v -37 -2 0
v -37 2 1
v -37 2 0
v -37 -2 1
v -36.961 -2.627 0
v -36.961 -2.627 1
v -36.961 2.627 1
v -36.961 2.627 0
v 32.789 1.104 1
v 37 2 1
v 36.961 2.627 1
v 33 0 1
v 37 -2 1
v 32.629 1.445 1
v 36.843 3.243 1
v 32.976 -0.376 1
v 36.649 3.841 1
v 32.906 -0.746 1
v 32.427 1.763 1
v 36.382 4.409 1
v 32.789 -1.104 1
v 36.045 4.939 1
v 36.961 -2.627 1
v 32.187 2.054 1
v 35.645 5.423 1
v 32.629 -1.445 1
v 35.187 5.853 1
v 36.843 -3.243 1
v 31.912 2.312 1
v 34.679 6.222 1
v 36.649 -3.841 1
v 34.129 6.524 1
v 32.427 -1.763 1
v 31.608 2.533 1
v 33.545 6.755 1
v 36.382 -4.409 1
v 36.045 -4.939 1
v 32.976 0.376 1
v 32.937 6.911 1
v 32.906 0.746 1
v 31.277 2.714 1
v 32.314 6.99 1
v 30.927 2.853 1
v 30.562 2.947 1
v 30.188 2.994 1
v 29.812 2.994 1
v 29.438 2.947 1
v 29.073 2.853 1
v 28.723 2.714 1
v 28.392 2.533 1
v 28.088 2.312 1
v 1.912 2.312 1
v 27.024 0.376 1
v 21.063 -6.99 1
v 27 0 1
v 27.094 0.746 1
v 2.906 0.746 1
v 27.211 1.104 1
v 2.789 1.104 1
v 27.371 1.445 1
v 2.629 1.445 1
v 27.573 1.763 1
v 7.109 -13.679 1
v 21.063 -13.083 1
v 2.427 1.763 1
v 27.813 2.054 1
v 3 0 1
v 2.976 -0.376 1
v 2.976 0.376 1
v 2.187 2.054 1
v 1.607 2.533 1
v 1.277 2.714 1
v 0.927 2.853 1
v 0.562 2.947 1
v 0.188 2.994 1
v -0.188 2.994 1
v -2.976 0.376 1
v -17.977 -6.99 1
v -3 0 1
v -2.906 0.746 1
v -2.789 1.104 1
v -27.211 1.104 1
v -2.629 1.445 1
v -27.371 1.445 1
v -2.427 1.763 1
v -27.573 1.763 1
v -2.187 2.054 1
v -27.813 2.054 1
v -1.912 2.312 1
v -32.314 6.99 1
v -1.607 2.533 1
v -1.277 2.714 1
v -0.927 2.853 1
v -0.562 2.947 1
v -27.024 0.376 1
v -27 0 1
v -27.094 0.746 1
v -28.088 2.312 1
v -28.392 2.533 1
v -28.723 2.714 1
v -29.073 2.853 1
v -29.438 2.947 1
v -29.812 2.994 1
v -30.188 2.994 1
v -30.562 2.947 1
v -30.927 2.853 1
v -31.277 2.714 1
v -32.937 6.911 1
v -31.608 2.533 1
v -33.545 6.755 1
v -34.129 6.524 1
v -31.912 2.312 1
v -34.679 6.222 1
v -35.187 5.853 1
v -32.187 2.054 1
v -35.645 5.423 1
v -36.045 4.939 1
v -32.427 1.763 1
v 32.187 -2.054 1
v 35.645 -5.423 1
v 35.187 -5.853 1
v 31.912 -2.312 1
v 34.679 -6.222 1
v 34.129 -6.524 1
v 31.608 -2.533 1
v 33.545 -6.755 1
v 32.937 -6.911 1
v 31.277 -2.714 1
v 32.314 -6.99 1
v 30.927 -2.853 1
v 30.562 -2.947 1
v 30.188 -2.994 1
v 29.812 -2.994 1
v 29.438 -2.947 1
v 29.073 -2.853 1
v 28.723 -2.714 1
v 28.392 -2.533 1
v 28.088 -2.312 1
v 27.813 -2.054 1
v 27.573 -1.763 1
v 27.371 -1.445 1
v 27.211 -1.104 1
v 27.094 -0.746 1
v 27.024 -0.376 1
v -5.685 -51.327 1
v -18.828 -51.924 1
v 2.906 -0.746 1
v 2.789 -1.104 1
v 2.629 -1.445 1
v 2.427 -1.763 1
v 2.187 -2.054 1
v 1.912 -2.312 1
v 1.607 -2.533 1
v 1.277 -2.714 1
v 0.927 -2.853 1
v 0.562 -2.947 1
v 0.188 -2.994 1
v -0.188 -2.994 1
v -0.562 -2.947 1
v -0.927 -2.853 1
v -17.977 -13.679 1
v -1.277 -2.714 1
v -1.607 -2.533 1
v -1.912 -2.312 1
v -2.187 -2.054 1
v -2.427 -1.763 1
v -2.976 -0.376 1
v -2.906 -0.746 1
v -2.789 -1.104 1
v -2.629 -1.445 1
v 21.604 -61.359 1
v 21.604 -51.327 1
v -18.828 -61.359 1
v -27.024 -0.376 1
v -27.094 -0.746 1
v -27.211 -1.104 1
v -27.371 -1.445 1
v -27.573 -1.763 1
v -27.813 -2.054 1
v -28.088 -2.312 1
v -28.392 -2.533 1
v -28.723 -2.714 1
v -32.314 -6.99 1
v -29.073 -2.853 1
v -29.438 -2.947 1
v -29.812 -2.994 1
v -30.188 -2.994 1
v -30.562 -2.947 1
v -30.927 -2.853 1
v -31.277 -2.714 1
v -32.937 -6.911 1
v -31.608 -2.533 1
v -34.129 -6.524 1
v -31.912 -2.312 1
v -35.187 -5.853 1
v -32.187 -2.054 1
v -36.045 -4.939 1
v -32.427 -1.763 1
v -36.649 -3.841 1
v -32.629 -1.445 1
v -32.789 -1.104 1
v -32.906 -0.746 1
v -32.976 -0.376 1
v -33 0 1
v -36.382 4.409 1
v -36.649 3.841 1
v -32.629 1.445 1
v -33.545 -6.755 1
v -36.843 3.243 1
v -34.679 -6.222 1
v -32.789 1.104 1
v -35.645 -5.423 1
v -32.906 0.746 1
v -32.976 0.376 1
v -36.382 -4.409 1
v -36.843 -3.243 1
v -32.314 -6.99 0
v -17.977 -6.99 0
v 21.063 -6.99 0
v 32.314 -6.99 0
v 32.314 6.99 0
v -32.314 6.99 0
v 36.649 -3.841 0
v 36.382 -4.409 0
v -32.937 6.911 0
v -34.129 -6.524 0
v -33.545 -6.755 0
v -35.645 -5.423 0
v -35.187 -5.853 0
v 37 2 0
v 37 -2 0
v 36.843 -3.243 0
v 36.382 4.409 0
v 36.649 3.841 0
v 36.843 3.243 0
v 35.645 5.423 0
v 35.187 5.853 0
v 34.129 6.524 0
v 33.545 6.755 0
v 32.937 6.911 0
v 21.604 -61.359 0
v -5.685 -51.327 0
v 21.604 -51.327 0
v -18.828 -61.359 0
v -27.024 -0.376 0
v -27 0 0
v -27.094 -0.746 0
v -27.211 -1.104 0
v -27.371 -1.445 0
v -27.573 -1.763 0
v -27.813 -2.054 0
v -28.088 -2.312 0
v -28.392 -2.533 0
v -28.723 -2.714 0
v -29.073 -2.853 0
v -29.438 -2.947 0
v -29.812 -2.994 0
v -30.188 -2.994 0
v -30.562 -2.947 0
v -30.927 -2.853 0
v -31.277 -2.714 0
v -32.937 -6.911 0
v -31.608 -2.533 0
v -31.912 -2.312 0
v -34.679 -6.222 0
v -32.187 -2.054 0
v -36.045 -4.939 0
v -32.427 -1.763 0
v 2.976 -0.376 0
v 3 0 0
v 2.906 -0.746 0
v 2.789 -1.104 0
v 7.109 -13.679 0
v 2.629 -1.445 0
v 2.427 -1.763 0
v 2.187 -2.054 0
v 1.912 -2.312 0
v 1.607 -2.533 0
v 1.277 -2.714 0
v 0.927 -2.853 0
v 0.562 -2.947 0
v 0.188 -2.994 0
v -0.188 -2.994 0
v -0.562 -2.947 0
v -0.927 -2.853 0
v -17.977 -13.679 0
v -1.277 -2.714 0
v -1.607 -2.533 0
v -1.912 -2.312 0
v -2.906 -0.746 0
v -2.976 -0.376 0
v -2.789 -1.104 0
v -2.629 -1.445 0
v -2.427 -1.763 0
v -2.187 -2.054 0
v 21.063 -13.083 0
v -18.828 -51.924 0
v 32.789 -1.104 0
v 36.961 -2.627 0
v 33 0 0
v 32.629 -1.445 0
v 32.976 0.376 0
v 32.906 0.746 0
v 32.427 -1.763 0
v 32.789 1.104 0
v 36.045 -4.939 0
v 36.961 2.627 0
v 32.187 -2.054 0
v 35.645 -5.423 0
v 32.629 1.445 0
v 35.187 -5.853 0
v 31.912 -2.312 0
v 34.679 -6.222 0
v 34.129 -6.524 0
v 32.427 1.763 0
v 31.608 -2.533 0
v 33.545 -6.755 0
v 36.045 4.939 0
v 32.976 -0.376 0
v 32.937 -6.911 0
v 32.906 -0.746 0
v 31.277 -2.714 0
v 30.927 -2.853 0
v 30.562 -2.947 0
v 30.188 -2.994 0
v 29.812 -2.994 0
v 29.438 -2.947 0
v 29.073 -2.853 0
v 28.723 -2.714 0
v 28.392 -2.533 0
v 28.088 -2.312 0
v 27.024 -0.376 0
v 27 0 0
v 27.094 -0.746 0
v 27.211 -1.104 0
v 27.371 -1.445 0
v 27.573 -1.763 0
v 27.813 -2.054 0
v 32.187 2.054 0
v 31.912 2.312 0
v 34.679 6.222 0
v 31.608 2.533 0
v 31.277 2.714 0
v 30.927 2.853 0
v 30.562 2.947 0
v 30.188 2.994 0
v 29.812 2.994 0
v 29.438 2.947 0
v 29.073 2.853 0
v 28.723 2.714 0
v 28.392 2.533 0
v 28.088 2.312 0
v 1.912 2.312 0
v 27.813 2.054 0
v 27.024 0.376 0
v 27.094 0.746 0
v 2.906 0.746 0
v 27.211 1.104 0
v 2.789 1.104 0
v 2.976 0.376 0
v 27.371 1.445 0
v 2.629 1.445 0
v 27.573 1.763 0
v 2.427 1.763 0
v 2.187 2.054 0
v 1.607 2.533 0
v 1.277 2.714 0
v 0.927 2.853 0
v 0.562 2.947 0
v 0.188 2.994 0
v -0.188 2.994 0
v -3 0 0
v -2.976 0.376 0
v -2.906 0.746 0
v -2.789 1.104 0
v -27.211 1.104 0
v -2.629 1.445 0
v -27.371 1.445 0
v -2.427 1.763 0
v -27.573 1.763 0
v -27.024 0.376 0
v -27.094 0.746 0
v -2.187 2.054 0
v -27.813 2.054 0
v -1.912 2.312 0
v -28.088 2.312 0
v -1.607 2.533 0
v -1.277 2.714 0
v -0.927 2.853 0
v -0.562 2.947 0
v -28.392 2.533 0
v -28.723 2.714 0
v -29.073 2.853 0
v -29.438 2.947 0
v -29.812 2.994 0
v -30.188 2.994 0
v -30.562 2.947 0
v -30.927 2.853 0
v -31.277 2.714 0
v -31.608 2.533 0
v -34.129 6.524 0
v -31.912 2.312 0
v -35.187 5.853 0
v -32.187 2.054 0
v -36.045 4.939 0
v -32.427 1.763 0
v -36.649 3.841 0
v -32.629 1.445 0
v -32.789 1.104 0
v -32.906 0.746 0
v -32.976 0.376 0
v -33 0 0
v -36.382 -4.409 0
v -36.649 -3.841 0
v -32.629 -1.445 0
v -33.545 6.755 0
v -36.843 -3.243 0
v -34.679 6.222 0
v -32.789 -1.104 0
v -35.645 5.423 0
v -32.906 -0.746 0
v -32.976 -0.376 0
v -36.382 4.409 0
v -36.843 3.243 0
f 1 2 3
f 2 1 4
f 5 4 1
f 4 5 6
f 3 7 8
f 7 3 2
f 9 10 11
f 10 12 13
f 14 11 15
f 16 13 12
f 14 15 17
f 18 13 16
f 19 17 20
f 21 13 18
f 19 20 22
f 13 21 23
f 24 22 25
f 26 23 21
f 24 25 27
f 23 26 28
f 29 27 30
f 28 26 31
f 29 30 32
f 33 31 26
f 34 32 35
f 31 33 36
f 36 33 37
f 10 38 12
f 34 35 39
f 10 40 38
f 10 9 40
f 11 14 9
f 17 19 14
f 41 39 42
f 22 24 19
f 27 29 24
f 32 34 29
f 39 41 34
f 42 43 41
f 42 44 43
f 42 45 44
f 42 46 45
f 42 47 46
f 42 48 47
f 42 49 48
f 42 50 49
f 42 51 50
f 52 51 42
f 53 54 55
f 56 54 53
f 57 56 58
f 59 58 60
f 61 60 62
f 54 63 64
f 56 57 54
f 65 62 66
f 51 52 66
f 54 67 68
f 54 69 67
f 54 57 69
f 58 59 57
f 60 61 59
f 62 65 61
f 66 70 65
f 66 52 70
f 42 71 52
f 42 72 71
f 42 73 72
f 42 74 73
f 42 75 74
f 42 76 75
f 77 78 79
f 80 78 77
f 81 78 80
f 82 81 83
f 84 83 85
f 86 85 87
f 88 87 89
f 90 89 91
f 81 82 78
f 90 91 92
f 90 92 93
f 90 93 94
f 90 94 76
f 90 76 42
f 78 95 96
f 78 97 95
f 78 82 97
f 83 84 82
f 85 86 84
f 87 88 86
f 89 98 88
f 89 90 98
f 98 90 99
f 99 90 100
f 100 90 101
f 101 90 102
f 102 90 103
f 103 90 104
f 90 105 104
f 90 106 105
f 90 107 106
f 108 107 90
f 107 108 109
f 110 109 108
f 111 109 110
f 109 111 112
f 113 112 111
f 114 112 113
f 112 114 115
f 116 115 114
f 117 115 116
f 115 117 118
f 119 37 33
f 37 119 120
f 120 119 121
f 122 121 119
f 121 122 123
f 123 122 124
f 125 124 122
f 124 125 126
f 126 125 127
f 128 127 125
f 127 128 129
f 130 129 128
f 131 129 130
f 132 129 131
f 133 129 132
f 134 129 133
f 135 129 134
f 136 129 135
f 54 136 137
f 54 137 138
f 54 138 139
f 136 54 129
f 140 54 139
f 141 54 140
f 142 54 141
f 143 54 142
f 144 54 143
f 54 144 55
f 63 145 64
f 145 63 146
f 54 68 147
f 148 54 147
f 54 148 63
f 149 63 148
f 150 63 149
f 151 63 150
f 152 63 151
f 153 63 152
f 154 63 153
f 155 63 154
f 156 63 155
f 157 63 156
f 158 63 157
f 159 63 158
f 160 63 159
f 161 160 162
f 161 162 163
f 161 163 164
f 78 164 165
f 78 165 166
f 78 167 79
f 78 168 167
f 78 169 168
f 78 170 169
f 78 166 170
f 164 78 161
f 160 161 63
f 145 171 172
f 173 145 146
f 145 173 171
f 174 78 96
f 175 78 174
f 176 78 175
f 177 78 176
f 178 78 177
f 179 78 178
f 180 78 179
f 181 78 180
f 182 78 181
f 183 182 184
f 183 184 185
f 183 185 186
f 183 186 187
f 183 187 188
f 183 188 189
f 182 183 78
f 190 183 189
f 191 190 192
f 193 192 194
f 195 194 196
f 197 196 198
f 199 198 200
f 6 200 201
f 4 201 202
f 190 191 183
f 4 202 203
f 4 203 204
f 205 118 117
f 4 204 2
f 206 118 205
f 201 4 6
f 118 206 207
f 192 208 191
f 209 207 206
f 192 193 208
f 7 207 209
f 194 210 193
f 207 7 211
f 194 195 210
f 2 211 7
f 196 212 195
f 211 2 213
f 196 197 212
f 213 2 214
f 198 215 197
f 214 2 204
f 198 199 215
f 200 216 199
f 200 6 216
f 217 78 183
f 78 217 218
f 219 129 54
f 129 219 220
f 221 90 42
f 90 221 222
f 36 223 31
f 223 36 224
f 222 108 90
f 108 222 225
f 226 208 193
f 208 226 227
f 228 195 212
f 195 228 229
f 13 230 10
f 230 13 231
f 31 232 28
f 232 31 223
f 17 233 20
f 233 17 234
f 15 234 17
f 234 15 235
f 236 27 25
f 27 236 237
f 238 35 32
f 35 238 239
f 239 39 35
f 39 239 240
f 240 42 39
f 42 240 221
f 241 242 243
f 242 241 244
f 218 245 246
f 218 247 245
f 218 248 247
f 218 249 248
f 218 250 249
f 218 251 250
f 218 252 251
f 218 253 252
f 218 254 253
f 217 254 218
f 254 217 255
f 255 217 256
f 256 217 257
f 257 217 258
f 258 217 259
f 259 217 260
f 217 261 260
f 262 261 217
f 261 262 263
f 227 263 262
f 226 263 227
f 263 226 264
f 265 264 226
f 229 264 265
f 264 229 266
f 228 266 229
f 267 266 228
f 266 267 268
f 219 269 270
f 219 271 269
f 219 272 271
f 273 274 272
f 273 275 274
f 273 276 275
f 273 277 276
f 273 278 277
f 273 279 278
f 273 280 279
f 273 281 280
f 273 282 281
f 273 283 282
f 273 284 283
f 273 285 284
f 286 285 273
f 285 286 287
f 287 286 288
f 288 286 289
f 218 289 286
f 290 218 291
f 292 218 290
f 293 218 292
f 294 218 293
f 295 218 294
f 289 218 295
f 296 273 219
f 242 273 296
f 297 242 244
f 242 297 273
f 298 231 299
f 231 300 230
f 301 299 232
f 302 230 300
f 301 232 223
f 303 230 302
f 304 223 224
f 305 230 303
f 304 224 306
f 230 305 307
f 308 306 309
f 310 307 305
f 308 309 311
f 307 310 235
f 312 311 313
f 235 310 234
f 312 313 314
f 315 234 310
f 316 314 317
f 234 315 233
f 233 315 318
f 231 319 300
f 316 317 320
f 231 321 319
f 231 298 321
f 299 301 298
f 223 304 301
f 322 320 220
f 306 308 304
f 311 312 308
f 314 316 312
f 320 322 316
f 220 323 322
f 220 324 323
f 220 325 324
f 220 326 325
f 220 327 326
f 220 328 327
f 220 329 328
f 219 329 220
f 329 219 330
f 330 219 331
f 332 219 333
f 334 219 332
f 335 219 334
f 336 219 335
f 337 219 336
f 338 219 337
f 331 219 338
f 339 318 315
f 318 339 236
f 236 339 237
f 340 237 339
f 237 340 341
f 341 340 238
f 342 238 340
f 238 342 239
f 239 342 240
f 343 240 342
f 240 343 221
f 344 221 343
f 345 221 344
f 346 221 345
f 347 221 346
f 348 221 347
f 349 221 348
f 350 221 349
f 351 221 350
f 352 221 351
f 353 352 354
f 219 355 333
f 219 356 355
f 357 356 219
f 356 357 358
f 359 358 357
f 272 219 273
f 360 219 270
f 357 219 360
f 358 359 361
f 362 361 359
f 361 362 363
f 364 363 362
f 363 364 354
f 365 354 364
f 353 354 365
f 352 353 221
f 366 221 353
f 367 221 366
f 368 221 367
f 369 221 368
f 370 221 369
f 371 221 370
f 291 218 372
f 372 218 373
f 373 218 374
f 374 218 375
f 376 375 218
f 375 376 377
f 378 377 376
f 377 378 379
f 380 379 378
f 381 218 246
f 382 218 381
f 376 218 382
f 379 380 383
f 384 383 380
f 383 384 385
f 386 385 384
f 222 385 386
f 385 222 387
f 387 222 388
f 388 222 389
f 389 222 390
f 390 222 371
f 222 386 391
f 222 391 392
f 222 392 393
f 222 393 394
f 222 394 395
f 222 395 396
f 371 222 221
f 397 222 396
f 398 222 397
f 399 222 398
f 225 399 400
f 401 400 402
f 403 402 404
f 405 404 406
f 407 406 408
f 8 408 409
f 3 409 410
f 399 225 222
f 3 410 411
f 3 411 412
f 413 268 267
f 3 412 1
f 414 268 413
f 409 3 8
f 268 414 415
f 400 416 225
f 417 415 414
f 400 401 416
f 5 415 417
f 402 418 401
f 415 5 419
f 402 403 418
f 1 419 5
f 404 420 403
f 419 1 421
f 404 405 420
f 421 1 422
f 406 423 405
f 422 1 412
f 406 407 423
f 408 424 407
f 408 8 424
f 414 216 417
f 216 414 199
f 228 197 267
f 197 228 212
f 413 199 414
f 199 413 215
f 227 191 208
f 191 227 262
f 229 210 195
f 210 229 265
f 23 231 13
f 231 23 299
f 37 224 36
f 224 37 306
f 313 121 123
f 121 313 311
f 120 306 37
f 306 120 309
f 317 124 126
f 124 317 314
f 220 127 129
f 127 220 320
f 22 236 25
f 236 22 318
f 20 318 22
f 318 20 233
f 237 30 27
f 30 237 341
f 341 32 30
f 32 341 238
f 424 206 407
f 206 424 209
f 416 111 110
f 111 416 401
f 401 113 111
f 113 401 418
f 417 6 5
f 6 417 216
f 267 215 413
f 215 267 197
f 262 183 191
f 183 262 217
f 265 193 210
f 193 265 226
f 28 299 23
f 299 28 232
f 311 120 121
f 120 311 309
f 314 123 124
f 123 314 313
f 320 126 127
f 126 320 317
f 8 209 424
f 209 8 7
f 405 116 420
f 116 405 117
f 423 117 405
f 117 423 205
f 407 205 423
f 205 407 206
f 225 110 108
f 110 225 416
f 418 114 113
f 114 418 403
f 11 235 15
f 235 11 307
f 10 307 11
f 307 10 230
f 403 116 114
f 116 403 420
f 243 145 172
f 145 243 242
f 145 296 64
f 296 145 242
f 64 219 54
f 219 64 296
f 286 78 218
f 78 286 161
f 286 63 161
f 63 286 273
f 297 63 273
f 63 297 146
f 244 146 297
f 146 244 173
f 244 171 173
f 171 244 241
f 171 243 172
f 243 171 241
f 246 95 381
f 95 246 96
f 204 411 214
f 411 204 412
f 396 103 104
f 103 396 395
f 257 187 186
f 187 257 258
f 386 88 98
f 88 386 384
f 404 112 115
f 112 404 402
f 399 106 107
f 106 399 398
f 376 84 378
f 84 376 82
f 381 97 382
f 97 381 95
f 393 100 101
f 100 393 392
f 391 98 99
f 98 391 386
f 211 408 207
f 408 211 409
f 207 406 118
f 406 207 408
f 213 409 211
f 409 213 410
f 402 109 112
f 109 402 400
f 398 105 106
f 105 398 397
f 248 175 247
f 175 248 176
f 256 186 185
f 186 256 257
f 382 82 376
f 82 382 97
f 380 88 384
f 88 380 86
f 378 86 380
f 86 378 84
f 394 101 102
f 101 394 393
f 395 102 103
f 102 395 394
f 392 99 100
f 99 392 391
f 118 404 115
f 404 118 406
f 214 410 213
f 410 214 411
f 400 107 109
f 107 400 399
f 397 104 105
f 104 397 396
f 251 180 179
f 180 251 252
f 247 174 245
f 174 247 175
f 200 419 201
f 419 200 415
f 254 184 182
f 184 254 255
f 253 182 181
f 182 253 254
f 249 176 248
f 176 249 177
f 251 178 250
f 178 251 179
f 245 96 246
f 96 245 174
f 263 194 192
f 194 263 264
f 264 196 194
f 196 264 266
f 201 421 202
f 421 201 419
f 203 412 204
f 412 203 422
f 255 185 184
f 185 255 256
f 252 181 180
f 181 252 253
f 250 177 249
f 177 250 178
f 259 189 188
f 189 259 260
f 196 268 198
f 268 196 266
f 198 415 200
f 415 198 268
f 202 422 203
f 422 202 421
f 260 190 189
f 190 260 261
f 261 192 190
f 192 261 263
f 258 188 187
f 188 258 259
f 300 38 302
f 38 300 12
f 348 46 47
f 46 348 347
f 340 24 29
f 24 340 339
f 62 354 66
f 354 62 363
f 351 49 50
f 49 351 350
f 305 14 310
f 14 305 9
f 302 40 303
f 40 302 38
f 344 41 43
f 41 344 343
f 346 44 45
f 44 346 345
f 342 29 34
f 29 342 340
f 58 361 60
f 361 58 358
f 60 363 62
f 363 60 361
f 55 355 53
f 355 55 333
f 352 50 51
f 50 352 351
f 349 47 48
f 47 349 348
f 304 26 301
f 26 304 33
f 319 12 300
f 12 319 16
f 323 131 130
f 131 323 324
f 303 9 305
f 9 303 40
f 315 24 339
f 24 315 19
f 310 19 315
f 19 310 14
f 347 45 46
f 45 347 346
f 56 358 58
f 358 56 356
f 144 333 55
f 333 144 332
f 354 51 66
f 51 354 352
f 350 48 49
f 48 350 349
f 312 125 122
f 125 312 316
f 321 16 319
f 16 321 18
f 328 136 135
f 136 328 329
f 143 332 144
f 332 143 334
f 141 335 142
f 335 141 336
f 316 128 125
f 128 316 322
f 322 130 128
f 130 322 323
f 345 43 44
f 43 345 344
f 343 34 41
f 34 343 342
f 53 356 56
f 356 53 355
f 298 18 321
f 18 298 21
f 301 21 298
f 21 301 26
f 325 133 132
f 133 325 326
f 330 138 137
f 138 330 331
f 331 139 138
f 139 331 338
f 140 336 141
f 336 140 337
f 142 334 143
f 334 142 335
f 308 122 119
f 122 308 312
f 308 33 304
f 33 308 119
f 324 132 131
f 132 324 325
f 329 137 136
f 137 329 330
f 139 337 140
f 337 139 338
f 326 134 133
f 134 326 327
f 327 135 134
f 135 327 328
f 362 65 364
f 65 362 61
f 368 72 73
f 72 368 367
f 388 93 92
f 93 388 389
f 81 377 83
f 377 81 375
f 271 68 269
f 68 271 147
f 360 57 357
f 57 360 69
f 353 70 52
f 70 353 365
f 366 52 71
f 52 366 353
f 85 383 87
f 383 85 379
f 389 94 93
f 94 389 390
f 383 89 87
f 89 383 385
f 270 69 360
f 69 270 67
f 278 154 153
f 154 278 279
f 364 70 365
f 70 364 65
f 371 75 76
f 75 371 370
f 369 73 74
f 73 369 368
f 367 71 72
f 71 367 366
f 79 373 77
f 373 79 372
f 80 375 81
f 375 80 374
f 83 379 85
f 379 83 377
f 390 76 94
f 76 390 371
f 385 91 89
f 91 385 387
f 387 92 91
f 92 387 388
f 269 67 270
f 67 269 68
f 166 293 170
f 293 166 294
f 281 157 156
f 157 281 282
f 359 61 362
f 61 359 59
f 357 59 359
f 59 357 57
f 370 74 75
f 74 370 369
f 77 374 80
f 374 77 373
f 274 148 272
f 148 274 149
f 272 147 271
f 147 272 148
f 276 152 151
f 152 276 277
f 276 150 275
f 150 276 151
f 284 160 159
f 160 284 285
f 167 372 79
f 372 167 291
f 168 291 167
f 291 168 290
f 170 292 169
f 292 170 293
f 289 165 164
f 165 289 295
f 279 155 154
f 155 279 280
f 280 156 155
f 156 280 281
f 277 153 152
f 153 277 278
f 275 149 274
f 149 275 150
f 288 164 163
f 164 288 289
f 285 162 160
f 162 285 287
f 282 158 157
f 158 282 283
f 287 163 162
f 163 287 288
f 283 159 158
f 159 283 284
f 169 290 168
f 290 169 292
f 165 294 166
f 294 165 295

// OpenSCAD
$fn = 50;


difference() {
	union() {
		translate(v = [0, 0, 0]) {
			rotate(a = [0, 0, 0]) {
				hull() {
					translate(v = [-32.0000000000, 2.0000000000, 0]) {
						rotate(a = [0, 0, 0]) {
							translate(v = [0, 0, 0]) {
								rotate(a = [0, 0, 0]) {
									cylinder(h = 1, r = 5);
								}
							}
						}
					}
					translate(v = [32.0000000000, 2.0000000000, 0]) {
						rotate(a = [0, 0, 0]) {
							translate(v = [0, 0, 0]) {
								rotate(a = [0, 0, 0]) {
									cylinder(h = 1, r = 5);
								}
							}
						}
					}
					translate(v = [-32.0000000000, -2.0000000000, 0]) {
						rotate(a = [0, 0, 0]) {
							translate(v = [0, 0, 0]) {
								rotate(a = [0, 0, 0]) {
									cylinder(h = 1, r = 5);
								}
							}
						}
					}
					translate(v = [32.0000000000, -2.0000000000, 0]) {
						rotate(a = [0, 0, 0]) {
							translate(v = [0, 0, 0]) {
								rotate(a = [0, 0, 0]) {
									cylinder(h = 1, r = 5);
								}
							}
						}
					}
				}
			}
		}
		translate(v = [0, -5, 0]) {
			rotate(a = [0, 0, 0]) {
				linear_extrude(height = 1) {
					text(font = "DejaVu Sans Mono:style=Bold", halign = "center", size = 57.0000000000, text = "Z", valign = "top");
				}
			}
		}
	}
	union() {
		translate(v = [-30.0000000000, 0.0000000000, -125.0000000000]) {
			rotate(a = [0, 0, 0]) {
				cylinder(h = 250, r = 3.0000000000);
			}
		}
		translate(v = [30.0000000000, 0.0000000000, -125.0000000000]) {
			rotate(a = [0, 0, 0]) {
				cylinder(h = 250, r = 3.0000000000);
			}
		}
		translate(v = [30.0000000000, 0.0000000000, -125.0000000000]) {
			rotate(a = [0, 0, 0]) {
				cylinder(h = 250, r = 3.0000000000);
			}
		}
		translate(v = [0, 0, -125.0000000000]) {
			rotate(a = [0, 0, 0]) {
				cylinder(h = 250, r = 3.0000000000);
			}
		}
	}
}
